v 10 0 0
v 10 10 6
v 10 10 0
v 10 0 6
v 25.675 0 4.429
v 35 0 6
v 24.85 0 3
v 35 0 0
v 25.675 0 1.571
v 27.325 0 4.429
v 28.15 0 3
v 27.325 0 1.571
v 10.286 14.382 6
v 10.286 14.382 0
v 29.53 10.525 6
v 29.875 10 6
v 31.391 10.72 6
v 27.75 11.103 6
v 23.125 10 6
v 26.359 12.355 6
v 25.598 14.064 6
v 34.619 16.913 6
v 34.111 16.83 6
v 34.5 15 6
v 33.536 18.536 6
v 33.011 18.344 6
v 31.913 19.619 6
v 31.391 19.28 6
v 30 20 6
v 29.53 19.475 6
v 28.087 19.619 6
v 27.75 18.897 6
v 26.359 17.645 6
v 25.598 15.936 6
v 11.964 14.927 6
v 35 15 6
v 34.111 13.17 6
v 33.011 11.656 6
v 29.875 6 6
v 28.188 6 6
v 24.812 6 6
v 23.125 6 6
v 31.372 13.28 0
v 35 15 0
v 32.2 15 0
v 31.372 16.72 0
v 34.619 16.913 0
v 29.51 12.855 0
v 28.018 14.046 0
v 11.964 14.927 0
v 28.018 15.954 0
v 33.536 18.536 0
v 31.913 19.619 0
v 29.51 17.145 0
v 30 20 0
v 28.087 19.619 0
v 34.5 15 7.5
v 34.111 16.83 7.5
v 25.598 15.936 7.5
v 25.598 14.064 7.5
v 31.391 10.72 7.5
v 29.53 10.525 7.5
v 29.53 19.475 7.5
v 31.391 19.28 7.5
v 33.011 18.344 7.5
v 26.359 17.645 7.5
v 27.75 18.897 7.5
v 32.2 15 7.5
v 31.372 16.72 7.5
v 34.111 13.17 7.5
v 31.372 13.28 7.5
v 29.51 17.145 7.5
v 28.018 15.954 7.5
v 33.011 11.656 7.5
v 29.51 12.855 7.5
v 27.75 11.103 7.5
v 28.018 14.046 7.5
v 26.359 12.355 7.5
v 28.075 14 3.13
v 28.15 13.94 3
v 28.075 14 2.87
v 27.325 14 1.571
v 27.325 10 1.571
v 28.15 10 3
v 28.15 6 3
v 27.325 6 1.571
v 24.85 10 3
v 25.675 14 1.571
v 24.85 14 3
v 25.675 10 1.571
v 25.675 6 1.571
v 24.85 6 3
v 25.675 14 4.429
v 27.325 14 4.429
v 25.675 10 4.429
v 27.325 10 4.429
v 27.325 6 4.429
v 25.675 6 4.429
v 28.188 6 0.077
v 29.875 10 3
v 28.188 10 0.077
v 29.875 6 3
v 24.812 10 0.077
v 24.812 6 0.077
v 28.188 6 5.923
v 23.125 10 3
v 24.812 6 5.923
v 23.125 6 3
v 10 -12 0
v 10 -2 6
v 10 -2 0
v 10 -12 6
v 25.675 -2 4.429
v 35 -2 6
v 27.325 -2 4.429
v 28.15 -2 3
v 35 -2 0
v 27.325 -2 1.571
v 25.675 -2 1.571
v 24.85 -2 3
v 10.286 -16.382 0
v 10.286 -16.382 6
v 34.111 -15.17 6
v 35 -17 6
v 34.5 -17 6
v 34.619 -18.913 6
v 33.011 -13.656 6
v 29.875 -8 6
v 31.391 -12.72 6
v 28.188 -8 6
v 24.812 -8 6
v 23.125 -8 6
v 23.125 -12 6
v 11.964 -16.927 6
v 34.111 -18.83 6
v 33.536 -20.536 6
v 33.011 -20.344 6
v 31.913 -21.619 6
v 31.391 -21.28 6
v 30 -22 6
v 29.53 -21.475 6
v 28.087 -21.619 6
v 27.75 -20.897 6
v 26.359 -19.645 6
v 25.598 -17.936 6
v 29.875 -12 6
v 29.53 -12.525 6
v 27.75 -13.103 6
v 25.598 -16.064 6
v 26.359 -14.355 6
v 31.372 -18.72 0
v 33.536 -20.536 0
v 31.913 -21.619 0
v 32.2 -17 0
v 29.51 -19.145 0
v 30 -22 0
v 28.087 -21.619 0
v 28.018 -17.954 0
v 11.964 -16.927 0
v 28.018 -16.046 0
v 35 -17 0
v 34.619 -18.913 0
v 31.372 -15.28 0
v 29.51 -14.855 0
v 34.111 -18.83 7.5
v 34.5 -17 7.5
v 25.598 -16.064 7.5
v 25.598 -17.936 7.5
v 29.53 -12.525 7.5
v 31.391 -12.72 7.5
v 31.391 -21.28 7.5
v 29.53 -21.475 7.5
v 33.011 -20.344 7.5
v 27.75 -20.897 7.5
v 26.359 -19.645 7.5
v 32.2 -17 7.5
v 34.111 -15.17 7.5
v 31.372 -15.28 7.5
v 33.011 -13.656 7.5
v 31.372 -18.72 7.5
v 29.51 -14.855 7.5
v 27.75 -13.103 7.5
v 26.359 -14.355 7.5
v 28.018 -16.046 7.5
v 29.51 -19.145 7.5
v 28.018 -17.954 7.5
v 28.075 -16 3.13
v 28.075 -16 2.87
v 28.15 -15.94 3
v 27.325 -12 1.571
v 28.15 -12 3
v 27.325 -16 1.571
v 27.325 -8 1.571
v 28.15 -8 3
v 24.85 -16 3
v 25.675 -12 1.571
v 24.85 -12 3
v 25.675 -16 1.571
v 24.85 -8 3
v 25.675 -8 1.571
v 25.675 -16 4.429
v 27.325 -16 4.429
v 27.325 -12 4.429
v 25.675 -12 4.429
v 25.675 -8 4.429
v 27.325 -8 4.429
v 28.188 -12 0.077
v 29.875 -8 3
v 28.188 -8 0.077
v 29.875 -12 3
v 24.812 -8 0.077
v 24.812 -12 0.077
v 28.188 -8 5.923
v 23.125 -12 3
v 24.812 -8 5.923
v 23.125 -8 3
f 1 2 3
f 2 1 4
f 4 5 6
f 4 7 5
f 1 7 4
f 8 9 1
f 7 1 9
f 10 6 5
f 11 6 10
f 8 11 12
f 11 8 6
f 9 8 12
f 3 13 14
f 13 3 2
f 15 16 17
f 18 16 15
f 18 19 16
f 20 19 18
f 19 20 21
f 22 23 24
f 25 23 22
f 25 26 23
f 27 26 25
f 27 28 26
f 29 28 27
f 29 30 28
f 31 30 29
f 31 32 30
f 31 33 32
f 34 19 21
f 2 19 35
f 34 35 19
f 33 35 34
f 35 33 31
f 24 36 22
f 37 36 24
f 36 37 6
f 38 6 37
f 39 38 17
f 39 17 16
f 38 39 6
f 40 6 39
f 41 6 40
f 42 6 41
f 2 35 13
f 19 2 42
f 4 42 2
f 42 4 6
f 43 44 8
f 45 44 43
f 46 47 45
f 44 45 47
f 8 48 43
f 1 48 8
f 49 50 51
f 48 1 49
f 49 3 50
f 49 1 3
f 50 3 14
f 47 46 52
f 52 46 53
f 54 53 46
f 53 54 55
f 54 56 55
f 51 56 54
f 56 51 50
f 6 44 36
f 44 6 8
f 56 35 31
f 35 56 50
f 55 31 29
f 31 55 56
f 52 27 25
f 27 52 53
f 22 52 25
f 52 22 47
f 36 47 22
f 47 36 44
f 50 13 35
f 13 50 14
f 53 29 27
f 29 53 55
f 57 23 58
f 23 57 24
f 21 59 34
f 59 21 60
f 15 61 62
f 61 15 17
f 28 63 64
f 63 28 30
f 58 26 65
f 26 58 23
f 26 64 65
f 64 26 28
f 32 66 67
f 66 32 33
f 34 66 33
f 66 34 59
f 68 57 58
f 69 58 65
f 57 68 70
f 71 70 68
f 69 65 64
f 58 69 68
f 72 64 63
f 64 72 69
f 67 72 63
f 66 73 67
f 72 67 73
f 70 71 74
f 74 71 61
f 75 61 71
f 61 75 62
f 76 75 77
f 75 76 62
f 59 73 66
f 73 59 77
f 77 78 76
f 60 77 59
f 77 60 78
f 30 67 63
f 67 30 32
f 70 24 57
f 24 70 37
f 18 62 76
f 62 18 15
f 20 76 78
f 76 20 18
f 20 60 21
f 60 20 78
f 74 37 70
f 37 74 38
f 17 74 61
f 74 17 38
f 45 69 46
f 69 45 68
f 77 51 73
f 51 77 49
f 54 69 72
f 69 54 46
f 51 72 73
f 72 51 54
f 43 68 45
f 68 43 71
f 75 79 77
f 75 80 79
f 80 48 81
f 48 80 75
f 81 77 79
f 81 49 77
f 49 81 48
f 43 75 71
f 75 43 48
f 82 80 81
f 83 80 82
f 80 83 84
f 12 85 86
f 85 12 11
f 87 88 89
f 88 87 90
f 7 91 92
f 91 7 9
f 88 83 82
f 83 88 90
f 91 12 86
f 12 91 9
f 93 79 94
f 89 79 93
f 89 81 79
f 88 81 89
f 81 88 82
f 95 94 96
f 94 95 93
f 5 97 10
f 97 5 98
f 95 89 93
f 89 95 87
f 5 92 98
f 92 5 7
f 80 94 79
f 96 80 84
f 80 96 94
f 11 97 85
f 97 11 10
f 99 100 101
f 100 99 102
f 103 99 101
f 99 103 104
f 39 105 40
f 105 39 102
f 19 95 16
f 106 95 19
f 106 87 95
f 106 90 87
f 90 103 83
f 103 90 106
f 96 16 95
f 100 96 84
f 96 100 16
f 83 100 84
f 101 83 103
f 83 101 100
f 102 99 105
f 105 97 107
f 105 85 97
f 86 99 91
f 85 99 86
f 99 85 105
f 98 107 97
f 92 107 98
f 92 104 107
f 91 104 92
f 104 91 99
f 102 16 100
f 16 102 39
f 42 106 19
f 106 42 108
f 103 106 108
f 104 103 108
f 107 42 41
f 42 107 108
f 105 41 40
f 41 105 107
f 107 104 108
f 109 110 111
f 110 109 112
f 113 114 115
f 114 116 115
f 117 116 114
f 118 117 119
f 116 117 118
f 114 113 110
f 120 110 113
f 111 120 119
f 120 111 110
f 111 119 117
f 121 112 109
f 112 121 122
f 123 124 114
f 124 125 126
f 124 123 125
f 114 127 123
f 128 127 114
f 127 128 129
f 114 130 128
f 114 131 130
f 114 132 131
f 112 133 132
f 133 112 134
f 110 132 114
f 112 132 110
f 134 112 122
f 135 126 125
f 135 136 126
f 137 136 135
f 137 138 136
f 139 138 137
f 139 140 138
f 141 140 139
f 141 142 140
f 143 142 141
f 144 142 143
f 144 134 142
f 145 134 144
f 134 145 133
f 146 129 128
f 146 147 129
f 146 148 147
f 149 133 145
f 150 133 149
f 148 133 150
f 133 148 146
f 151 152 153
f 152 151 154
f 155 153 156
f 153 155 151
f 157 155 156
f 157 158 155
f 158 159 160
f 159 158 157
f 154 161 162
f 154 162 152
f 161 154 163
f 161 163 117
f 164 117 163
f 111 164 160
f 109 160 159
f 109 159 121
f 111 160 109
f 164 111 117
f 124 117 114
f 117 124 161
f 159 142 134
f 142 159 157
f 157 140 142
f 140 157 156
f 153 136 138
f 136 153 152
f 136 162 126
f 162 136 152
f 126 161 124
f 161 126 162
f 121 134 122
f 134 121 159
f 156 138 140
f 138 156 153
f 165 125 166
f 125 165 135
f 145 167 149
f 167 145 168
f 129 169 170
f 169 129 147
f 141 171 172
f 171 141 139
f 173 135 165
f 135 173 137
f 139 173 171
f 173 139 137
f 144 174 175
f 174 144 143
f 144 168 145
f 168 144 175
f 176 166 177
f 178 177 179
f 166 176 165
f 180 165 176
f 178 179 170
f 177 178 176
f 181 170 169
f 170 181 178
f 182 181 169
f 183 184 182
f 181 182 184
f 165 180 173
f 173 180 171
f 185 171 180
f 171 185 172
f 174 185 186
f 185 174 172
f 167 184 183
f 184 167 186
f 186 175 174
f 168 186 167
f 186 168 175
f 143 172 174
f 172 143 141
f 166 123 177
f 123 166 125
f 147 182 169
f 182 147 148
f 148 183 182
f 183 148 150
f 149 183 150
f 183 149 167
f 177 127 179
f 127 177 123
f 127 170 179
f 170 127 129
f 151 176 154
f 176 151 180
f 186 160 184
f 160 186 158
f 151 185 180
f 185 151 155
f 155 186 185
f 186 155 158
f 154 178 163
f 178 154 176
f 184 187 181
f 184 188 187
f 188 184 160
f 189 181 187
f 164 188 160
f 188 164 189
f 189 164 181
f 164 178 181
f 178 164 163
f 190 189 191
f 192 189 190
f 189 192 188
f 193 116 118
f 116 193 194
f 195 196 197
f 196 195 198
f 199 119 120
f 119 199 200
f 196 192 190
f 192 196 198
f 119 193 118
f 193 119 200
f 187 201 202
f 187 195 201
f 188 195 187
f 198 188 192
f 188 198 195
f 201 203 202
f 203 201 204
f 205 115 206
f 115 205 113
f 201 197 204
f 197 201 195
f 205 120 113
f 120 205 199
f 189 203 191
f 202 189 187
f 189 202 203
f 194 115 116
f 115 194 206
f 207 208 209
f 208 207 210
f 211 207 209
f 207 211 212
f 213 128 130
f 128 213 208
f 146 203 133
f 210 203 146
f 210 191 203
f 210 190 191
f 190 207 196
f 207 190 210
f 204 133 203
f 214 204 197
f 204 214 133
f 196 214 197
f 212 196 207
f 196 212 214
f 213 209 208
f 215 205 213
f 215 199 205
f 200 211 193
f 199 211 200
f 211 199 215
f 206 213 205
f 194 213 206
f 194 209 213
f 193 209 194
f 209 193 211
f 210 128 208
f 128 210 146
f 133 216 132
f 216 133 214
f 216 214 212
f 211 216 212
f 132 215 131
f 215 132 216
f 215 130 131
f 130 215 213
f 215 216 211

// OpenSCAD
/**
 * YIdlerSteel for i3 Steel
 *
 * Created by DViejo
 * 27/Oct/2014
 *
 *  This part allows you to use 624 bearings in your i3 Steel. It makes possible to have
 * a straight belt when used with YBeltHolderSteel part (also included in this project). This can be used 
 * in a 'vanilla' i3steel although it is designed to be used with the model sold in moebyus.com (Madrid - Spain)
 */

 
pulleyInnerRad = 2 * 1.1; //change 2 by 1.65 for 623zz bearings
pulleyWidth = 5 + 1;

height = 6;
motorHeight = 30;

//watch();
print();


module idlerPlate()
{
  difference()
  {
    union() {
        hull()
        {
        translate([10, 0, 0]) cube([35-10, 10, height]);
        translate([1.5+10, 13.5, 0]) cylinder(r=1.5, h=height);
        translate([motorHeight, 15, 0]) cylinder(r=5, h=height);
        }
        translate([motorHeight, 15, 0]) cylinder(r=4.5, h=height+1.5);
    }
    //bearing beam hole
    translate([motorHeight, 15, -1]) cylinder(r=pulleyInnerRad, h=height+3);
    
    //frame attaching hole
    #translate([26.5, -1, height/2]) rotate([-90, 0, 0]) cylinder(r=1.65, h=15);
    //nut
    hull()
    {
      translate([26.5, 6, height/2]) rotate([-90, 0, 0]) cylinder(r=6.75/2, h=4, $fn=6);
      translate([26.5, 6, height]) rotate([-90, 0, 0]) cylinder(r=6.75/2, h=4, $fn=6);
    }
  }
}

module watch()
{
  translate([height/2, 0, 0]) rotate([0, -90, 0]) idlerPlate();
  translate([height/2 + 13, 0, 0]) rotate([0, -90, 0]) idlerPlate();
  
  %translate([(13+pulleyWidth)/2, 15, 30]) rotate([0, -90, 0]) cylinder(r=13/2, h=pulleyWidth);
  
}

module print()
{
  idlerPlate();
  translate([0, -2, 0]) mirror([0, -1, 0]) idlerPlate();
}
